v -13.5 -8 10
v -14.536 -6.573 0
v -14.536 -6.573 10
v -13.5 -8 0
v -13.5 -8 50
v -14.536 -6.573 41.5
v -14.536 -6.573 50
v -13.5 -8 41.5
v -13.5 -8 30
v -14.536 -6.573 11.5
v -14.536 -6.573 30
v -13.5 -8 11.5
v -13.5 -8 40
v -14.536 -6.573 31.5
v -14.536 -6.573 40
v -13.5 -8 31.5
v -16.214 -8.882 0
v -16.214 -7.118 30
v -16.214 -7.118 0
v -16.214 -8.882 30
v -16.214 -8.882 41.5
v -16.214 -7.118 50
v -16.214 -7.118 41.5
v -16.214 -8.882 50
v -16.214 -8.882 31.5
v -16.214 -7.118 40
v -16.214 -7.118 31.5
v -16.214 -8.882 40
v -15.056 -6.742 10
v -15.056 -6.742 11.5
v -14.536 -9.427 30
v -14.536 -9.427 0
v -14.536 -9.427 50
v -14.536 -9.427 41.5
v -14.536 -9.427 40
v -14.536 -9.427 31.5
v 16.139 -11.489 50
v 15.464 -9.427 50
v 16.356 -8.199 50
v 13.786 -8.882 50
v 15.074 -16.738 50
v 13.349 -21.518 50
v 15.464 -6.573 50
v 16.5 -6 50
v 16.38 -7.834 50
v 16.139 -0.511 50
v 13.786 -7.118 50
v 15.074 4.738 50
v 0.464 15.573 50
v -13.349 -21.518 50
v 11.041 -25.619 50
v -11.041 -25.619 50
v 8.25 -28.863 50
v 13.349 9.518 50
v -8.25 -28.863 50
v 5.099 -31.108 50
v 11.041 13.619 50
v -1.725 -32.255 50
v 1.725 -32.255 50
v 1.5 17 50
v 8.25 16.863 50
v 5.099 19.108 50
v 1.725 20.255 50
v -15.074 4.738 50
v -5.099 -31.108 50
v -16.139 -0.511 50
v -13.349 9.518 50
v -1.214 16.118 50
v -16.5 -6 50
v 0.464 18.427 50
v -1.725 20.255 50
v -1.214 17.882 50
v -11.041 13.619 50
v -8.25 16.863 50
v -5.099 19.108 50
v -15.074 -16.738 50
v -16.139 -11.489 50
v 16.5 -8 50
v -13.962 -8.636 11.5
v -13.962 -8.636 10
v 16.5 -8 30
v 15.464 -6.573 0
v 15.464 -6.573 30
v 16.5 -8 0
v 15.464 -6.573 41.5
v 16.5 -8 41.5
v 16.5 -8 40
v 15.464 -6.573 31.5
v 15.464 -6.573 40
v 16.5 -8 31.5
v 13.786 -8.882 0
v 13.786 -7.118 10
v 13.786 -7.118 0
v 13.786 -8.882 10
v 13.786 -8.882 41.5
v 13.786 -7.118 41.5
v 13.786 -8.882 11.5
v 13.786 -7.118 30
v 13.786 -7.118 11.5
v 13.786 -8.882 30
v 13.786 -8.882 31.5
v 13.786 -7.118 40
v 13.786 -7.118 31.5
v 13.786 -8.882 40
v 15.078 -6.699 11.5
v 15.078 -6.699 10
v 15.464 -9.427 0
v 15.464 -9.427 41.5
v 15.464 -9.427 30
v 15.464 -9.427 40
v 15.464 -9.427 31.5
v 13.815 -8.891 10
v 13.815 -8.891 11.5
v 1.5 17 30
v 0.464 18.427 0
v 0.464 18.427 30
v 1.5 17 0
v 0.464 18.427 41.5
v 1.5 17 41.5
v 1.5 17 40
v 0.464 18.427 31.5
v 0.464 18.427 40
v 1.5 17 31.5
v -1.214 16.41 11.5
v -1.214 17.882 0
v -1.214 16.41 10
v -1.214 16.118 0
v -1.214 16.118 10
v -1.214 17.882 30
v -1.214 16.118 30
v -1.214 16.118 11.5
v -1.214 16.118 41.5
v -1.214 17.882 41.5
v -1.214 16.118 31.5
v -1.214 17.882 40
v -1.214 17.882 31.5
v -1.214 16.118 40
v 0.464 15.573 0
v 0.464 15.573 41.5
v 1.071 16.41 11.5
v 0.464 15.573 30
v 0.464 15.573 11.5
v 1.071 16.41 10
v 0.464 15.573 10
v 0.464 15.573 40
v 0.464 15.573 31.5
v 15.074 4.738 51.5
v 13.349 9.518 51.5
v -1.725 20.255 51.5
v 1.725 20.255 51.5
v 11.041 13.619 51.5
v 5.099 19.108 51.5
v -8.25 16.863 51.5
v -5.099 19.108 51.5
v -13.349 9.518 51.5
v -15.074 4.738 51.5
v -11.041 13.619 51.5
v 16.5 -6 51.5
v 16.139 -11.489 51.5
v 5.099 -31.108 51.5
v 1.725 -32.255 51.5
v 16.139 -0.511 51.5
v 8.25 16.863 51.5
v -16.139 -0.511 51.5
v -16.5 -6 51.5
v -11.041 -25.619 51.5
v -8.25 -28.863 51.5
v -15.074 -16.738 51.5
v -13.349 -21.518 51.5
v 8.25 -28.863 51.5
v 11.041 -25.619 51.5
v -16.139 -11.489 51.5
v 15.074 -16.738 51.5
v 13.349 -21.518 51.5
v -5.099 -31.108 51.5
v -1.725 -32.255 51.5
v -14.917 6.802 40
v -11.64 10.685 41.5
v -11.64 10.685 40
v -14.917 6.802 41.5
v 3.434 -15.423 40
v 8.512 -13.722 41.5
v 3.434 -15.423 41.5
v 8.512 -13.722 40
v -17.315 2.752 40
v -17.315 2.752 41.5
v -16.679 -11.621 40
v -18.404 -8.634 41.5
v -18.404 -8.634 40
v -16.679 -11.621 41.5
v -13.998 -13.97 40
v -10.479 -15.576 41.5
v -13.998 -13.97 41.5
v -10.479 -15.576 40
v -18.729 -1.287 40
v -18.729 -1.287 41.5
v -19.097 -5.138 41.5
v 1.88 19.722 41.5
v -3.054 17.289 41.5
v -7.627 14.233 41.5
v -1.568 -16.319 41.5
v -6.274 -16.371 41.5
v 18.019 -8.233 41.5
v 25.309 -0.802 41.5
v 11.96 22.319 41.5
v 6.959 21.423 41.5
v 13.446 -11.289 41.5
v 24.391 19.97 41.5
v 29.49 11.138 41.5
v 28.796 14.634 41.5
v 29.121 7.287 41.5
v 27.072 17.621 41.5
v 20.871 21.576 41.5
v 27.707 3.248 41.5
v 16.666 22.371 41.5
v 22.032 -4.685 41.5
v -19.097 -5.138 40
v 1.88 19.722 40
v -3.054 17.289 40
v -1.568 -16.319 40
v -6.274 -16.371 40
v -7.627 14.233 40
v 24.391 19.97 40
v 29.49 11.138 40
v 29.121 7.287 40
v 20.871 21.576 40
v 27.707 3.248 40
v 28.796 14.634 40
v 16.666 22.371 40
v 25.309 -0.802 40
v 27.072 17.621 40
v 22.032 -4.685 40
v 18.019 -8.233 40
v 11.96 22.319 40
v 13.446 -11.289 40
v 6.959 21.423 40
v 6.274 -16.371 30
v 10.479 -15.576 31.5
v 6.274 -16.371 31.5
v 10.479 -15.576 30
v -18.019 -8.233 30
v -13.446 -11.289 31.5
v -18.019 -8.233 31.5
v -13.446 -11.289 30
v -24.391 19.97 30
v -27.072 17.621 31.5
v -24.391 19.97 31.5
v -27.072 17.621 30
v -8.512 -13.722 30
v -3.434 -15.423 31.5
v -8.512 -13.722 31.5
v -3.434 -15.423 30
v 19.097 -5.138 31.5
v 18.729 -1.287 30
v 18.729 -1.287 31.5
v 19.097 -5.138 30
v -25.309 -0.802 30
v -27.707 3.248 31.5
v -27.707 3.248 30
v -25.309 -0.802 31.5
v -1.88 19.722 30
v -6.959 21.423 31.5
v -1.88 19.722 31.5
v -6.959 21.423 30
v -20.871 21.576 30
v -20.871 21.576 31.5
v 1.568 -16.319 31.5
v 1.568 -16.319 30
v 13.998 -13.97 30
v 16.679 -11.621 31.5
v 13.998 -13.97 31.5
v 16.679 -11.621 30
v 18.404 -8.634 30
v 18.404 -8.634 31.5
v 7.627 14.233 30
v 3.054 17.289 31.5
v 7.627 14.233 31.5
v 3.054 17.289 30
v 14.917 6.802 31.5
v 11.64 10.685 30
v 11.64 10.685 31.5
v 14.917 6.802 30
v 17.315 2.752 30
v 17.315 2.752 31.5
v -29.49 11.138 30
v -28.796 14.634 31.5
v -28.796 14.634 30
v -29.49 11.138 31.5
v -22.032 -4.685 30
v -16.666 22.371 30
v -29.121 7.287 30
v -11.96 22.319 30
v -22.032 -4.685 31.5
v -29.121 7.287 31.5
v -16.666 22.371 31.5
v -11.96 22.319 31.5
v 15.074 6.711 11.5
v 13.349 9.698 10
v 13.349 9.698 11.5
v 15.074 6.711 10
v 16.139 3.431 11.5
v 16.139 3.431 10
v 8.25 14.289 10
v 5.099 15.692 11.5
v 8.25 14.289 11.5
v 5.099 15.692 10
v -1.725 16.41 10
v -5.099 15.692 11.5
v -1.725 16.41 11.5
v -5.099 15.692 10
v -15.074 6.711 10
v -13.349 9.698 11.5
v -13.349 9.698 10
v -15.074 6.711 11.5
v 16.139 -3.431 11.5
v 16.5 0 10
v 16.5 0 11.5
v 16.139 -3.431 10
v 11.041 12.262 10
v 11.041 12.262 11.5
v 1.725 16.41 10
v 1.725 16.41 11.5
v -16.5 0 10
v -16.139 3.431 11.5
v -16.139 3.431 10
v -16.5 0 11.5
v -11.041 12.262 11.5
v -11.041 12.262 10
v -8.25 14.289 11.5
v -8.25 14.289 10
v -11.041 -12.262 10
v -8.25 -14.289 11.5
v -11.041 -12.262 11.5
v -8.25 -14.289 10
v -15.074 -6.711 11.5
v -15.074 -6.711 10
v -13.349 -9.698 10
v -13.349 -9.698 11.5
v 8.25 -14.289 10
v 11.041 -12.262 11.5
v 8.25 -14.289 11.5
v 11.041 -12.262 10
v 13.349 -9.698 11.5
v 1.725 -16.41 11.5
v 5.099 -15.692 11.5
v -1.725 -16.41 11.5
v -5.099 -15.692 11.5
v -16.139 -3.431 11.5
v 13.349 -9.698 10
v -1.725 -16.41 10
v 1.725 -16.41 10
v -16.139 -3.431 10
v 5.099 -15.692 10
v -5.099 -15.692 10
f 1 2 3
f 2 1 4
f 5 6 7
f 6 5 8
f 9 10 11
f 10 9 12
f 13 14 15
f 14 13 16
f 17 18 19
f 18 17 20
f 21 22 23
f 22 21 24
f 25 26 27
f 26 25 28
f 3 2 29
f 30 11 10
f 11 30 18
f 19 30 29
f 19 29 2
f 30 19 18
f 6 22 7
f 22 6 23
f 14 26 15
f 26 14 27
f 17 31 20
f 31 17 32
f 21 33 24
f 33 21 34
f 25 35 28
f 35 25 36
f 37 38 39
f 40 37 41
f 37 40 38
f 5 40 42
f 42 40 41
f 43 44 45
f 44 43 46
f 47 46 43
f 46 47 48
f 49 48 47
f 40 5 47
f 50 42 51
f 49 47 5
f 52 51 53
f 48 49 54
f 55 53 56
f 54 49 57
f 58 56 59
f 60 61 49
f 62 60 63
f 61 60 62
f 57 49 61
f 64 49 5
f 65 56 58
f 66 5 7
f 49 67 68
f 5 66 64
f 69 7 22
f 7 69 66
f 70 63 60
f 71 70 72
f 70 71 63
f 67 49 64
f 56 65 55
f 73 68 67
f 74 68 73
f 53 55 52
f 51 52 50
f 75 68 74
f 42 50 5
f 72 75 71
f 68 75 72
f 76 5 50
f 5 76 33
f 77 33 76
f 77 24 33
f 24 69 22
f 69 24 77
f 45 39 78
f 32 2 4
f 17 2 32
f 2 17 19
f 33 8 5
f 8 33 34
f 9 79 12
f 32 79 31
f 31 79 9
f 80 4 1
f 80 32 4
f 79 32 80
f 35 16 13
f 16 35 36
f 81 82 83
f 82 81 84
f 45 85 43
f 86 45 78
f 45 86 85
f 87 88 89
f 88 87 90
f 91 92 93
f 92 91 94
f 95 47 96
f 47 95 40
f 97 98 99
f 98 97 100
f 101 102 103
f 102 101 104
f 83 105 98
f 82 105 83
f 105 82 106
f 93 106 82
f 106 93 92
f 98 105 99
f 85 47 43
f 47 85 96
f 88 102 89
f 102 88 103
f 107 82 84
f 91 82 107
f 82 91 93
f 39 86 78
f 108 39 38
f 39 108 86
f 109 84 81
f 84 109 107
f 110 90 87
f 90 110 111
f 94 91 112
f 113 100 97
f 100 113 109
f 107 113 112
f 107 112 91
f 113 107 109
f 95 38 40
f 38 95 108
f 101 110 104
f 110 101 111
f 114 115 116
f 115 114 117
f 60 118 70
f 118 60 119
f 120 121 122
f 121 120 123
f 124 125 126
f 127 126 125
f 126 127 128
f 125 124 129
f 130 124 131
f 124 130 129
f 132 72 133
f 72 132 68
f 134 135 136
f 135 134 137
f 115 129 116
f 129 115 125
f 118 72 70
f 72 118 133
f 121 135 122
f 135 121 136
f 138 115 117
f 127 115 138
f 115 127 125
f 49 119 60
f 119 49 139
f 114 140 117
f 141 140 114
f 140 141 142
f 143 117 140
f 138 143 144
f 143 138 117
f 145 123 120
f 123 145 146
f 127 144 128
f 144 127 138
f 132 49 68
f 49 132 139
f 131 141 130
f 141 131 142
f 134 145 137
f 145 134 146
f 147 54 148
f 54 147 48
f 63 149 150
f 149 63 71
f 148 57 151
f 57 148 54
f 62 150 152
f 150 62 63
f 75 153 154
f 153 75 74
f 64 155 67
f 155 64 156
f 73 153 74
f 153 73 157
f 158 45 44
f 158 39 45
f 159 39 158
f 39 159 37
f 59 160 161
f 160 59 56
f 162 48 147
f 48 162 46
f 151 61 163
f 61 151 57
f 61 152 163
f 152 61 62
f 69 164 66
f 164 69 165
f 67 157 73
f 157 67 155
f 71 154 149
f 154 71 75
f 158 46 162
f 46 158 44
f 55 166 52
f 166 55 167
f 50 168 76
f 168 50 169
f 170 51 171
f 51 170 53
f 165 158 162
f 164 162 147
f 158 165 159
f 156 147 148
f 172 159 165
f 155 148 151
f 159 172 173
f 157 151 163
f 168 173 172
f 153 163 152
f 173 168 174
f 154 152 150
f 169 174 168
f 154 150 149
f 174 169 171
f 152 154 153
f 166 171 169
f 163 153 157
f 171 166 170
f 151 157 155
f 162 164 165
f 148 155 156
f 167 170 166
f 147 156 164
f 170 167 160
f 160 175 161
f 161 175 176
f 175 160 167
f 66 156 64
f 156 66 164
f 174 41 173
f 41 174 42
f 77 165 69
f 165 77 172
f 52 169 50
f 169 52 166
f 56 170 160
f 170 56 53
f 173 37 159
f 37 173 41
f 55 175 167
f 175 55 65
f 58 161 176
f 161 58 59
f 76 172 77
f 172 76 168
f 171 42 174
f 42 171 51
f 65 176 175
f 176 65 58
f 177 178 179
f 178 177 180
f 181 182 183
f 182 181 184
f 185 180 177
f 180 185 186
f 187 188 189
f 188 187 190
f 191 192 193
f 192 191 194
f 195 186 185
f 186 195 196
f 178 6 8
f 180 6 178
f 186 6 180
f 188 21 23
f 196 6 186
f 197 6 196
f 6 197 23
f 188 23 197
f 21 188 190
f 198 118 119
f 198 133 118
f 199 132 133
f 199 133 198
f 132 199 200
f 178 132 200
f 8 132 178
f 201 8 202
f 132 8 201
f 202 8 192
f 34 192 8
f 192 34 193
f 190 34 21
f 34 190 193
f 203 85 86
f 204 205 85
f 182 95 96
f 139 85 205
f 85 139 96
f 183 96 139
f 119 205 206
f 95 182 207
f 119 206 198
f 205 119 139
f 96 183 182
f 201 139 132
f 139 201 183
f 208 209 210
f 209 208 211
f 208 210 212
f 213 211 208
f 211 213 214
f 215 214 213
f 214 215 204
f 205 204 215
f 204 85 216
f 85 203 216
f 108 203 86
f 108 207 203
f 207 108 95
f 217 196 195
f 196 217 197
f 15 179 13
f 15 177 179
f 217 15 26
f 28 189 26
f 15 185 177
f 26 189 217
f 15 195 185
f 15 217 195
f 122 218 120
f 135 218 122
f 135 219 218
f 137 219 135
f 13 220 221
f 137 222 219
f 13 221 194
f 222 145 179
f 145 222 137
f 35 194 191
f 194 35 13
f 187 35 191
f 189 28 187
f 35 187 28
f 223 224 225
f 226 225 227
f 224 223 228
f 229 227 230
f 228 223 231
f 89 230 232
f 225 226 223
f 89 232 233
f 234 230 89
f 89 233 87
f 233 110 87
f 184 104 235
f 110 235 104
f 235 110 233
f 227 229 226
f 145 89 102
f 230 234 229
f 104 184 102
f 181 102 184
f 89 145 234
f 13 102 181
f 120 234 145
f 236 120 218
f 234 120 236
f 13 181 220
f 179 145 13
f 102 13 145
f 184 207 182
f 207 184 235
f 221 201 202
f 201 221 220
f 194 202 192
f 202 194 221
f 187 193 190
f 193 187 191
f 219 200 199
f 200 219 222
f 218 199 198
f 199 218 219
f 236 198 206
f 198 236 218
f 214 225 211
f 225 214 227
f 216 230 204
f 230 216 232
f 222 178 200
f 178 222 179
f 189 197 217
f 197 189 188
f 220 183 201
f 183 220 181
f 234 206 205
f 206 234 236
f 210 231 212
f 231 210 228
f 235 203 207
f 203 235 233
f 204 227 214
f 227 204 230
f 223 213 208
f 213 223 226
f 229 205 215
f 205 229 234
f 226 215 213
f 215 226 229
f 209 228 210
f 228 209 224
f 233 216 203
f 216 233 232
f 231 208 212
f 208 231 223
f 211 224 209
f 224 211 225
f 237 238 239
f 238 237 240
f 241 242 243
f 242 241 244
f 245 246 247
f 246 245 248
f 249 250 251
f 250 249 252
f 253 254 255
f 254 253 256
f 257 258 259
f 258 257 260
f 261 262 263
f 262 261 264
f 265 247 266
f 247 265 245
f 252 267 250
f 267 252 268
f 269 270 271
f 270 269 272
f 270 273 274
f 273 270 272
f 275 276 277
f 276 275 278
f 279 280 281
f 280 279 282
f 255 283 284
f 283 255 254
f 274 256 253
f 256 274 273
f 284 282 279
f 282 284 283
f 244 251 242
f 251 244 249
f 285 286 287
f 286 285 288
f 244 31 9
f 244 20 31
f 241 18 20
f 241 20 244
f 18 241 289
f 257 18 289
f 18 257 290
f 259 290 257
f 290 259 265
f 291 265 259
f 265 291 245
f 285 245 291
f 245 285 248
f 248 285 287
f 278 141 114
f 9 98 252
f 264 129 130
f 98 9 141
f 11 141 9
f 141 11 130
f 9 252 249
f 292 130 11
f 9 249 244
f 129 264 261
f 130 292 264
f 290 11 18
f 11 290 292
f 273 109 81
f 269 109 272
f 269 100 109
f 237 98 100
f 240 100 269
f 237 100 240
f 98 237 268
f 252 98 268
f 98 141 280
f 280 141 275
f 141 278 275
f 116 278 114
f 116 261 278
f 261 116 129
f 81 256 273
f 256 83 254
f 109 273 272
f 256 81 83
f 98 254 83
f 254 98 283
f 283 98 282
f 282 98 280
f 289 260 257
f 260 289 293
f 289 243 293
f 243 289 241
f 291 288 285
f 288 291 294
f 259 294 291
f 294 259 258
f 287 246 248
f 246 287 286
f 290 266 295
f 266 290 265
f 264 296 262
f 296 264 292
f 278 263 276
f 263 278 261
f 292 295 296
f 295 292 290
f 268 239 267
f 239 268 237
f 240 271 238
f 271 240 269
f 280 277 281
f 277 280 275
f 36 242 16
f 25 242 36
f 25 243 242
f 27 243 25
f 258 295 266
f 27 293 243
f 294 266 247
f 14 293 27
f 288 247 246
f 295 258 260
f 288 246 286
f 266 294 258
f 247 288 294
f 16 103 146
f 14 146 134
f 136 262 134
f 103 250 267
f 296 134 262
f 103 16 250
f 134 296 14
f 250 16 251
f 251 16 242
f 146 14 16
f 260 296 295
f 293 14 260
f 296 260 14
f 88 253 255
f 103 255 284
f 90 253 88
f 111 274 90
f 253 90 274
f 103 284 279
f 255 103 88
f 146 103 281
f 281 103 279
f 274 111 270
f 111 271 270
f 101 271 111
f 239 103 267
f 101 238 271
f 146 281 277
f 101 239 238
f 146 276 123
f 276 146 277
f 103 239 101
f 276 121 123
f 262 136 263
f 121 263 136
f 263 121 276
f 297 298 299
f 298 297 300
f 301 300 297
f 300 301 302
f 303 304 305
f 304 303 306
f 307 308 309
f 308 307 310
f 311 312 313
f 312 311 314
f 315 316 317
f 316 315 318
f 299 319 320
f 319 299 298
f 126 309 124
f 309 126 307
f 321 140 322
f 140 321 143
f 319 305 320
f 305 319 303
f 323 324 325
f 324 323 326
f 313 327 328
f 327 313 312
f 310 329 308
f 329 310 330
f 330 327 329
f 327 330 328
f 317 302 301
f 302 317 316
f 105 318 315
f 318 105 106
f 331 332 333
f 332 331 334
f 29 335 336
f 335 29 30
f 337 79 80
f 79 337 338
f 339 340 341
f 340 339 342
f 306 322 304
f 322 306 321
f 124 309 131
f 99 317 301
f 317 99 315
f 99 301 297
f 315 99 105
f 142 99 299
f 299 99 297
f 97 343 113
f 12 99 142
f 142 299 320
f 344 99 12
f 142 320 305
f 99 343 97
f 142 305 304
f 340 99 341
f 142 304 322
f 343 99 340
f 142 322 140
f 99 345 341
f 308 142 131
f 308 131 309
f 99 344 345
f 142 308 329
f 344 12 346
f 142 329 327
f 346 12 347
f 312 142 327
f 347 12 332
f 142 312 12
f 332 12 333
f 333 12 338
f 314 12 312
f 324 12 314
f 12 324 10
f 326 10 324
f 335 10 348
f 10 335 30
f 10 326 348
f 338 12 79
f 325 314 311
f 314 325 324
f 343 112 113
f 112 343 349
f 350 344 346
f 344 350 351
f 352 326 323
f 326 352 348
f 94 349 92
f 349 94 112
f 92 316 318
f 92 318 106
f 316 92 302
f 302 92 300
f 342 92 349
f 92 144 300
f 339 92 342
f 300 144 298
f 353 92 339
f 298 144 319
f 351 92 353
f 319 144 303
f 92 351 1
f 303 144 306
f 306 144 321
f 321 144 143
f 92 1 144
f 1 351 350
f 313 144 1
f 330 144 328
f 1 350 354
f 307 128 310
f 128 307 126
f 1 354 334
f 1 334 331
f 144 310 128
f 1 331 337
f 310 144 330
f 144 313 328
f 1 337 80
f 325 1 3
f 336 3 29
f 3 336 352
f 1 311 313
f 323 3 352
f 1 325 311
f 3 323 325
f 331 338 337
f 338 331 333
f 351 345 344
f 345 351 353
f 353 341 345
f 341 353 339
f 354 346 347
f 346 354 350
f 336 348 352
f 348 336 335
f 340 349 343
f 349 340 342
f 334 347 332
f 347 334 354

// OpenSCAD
translate([-15, -8, 0]) cylinder(r=1.5, h=50);
translate([15, -8, 0]) cylinder(r=1.5, h=50);
translate([0, 17, 0]) cylinder(r=1.5, h=50);

translate([0, -6, 50]) scale([0.5, 0.8, 1]) cylinder(r=33, h=1.5);

rotate([0, 0, 120]) translate([0, -6, 40]) scale([0.5, 0.8, 1]) cylinder(r=33, h=1.5);

rotate([0, 0, 240]) translate([0, -6, 30]) scale([0.5, 0.8, 1]) cylinder(r=33, h=1.5);

translate([0, 0, 10]) cylinder(r=16.5, h=1.5);
